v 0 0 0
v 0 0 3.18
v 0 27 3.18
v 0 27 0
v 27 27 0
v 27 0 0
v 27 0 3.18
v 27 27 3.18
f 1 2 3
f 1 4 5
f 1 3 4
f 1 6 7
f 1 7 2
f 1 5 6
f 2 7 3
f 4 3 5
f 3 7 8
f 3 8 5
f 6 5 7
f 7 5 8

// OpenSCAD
/* Warning, this is a very basic generator with a lot of approximation 
input data : [BFBGA, 6FC, 27x27x3.18mm, 1022, , A, C04-25063A]
generated by com.zoubworld.electronics.cad.model3d.Basic
Date : Sun Feb 15 10:50:49 CET 2026
*/

//body
color("black")
translate([0,0,0])
cube([27.0,27.0,3.18], center=false);
